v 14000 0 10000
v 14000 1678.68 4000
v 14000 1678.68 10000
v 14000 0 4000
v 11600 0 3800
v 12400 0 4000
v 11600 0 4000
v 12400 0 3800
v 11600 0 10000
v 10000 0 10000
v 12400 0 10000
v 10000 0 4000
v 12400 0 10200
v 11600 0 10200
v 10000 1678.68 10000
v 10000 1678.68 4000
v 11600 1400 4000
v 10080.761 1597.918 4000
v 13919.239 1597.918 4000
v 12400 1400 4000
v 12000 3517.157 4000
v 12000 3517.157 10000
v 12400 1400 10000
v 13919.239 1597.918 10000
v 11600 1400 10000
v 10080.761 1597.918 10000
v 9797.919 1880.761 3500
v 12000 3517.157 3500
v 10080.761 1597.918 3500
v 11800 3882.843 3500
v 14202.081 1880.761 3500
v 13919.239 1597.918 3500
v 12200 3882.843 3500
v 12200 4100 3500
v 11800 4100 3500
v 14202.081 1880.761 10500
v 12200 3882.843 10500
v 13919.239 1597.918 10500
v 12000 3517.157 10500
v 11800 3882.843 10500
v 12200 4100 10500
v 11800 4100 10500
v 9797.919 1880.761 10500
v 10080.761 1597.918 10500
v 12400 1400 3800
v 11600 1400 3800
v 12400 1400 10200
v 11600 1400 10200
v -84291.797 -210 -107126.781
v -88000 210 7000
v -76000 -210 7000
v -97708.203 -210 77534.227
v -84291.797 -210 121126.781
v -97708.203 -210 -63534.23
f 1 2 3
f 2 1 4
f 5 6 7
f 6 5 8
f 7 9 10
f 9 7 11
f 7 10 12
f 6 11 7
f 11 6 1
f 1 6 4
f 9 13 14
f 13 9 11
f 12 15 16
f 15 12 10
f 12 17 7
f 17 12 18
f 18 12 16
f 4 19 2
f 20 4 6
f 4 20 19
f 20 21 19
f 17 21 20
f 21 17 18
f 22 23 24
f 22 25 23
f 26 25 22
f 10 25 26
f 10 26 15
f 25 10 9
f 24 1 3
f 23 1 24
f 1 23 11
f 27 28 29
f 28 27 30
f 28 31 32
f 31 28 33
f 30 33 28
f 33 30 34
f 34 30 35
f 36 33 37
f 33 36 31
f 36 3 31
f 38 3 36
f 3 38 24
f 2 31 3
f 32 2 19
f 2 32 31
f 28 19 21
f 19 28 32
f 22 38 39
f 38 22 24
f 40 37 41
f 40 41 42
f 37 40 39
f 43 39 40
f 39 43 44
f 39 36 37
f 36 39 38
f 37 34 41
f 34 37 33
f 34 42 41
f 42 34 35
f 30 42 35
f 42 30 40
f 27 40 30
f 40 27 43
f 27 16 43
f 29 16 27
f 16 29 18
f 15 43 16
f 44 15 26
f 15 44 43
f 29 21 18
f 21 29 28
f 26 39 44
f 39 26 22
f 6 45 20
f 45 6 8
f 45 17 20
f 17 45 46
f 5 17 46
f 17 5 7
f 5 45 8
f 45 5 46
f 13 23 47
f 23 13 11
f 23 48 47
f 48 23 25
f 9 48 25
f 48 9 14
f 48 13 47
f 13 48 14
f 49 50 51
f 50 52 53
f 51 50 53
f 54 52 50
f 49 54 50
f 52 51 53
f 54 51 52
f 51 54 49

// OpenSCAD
module House() {
    translate([0,0,50]) {
        cube([200,300,100], center=true);
    }
    translate([0,0,100]) {
        rotate([0,45,0]) {
            cube([137,300,137], center=true);
        }
    }
    translate([50,0,140]) {
        rotate([0,45,0]) {
            cube([150,350,20], center=true);
        }
    }
    translate([0,0,195]) {
        cube([20,350,20], center=true);
    }
    translate([-50,0,140]) {
        rotate([0,-45,0]) {
            cube([150,350,20], center=true);
        }
    }
    translate([0,155,35]) {
        cube([40,10,70], center=true);
    }
    translate([0,-155,35]) {
        cube([40,10,70], center=true);
    }
}

module Snow() {
    translate([-5000,0,0]) {
        scale([0.1,1,1]) {
            cylinder(h = 21.0, r1 = 6000.0, r2 = 0.0, center=true, $fn=5);
          
        }
    }
}

translate([12000,0,7000]) {
    rotate([270, 0, 0]) {
        scale([20,20,20]) {
            rotate([0,0,0]) { House(); }
            Snow();
        }
    }
}
